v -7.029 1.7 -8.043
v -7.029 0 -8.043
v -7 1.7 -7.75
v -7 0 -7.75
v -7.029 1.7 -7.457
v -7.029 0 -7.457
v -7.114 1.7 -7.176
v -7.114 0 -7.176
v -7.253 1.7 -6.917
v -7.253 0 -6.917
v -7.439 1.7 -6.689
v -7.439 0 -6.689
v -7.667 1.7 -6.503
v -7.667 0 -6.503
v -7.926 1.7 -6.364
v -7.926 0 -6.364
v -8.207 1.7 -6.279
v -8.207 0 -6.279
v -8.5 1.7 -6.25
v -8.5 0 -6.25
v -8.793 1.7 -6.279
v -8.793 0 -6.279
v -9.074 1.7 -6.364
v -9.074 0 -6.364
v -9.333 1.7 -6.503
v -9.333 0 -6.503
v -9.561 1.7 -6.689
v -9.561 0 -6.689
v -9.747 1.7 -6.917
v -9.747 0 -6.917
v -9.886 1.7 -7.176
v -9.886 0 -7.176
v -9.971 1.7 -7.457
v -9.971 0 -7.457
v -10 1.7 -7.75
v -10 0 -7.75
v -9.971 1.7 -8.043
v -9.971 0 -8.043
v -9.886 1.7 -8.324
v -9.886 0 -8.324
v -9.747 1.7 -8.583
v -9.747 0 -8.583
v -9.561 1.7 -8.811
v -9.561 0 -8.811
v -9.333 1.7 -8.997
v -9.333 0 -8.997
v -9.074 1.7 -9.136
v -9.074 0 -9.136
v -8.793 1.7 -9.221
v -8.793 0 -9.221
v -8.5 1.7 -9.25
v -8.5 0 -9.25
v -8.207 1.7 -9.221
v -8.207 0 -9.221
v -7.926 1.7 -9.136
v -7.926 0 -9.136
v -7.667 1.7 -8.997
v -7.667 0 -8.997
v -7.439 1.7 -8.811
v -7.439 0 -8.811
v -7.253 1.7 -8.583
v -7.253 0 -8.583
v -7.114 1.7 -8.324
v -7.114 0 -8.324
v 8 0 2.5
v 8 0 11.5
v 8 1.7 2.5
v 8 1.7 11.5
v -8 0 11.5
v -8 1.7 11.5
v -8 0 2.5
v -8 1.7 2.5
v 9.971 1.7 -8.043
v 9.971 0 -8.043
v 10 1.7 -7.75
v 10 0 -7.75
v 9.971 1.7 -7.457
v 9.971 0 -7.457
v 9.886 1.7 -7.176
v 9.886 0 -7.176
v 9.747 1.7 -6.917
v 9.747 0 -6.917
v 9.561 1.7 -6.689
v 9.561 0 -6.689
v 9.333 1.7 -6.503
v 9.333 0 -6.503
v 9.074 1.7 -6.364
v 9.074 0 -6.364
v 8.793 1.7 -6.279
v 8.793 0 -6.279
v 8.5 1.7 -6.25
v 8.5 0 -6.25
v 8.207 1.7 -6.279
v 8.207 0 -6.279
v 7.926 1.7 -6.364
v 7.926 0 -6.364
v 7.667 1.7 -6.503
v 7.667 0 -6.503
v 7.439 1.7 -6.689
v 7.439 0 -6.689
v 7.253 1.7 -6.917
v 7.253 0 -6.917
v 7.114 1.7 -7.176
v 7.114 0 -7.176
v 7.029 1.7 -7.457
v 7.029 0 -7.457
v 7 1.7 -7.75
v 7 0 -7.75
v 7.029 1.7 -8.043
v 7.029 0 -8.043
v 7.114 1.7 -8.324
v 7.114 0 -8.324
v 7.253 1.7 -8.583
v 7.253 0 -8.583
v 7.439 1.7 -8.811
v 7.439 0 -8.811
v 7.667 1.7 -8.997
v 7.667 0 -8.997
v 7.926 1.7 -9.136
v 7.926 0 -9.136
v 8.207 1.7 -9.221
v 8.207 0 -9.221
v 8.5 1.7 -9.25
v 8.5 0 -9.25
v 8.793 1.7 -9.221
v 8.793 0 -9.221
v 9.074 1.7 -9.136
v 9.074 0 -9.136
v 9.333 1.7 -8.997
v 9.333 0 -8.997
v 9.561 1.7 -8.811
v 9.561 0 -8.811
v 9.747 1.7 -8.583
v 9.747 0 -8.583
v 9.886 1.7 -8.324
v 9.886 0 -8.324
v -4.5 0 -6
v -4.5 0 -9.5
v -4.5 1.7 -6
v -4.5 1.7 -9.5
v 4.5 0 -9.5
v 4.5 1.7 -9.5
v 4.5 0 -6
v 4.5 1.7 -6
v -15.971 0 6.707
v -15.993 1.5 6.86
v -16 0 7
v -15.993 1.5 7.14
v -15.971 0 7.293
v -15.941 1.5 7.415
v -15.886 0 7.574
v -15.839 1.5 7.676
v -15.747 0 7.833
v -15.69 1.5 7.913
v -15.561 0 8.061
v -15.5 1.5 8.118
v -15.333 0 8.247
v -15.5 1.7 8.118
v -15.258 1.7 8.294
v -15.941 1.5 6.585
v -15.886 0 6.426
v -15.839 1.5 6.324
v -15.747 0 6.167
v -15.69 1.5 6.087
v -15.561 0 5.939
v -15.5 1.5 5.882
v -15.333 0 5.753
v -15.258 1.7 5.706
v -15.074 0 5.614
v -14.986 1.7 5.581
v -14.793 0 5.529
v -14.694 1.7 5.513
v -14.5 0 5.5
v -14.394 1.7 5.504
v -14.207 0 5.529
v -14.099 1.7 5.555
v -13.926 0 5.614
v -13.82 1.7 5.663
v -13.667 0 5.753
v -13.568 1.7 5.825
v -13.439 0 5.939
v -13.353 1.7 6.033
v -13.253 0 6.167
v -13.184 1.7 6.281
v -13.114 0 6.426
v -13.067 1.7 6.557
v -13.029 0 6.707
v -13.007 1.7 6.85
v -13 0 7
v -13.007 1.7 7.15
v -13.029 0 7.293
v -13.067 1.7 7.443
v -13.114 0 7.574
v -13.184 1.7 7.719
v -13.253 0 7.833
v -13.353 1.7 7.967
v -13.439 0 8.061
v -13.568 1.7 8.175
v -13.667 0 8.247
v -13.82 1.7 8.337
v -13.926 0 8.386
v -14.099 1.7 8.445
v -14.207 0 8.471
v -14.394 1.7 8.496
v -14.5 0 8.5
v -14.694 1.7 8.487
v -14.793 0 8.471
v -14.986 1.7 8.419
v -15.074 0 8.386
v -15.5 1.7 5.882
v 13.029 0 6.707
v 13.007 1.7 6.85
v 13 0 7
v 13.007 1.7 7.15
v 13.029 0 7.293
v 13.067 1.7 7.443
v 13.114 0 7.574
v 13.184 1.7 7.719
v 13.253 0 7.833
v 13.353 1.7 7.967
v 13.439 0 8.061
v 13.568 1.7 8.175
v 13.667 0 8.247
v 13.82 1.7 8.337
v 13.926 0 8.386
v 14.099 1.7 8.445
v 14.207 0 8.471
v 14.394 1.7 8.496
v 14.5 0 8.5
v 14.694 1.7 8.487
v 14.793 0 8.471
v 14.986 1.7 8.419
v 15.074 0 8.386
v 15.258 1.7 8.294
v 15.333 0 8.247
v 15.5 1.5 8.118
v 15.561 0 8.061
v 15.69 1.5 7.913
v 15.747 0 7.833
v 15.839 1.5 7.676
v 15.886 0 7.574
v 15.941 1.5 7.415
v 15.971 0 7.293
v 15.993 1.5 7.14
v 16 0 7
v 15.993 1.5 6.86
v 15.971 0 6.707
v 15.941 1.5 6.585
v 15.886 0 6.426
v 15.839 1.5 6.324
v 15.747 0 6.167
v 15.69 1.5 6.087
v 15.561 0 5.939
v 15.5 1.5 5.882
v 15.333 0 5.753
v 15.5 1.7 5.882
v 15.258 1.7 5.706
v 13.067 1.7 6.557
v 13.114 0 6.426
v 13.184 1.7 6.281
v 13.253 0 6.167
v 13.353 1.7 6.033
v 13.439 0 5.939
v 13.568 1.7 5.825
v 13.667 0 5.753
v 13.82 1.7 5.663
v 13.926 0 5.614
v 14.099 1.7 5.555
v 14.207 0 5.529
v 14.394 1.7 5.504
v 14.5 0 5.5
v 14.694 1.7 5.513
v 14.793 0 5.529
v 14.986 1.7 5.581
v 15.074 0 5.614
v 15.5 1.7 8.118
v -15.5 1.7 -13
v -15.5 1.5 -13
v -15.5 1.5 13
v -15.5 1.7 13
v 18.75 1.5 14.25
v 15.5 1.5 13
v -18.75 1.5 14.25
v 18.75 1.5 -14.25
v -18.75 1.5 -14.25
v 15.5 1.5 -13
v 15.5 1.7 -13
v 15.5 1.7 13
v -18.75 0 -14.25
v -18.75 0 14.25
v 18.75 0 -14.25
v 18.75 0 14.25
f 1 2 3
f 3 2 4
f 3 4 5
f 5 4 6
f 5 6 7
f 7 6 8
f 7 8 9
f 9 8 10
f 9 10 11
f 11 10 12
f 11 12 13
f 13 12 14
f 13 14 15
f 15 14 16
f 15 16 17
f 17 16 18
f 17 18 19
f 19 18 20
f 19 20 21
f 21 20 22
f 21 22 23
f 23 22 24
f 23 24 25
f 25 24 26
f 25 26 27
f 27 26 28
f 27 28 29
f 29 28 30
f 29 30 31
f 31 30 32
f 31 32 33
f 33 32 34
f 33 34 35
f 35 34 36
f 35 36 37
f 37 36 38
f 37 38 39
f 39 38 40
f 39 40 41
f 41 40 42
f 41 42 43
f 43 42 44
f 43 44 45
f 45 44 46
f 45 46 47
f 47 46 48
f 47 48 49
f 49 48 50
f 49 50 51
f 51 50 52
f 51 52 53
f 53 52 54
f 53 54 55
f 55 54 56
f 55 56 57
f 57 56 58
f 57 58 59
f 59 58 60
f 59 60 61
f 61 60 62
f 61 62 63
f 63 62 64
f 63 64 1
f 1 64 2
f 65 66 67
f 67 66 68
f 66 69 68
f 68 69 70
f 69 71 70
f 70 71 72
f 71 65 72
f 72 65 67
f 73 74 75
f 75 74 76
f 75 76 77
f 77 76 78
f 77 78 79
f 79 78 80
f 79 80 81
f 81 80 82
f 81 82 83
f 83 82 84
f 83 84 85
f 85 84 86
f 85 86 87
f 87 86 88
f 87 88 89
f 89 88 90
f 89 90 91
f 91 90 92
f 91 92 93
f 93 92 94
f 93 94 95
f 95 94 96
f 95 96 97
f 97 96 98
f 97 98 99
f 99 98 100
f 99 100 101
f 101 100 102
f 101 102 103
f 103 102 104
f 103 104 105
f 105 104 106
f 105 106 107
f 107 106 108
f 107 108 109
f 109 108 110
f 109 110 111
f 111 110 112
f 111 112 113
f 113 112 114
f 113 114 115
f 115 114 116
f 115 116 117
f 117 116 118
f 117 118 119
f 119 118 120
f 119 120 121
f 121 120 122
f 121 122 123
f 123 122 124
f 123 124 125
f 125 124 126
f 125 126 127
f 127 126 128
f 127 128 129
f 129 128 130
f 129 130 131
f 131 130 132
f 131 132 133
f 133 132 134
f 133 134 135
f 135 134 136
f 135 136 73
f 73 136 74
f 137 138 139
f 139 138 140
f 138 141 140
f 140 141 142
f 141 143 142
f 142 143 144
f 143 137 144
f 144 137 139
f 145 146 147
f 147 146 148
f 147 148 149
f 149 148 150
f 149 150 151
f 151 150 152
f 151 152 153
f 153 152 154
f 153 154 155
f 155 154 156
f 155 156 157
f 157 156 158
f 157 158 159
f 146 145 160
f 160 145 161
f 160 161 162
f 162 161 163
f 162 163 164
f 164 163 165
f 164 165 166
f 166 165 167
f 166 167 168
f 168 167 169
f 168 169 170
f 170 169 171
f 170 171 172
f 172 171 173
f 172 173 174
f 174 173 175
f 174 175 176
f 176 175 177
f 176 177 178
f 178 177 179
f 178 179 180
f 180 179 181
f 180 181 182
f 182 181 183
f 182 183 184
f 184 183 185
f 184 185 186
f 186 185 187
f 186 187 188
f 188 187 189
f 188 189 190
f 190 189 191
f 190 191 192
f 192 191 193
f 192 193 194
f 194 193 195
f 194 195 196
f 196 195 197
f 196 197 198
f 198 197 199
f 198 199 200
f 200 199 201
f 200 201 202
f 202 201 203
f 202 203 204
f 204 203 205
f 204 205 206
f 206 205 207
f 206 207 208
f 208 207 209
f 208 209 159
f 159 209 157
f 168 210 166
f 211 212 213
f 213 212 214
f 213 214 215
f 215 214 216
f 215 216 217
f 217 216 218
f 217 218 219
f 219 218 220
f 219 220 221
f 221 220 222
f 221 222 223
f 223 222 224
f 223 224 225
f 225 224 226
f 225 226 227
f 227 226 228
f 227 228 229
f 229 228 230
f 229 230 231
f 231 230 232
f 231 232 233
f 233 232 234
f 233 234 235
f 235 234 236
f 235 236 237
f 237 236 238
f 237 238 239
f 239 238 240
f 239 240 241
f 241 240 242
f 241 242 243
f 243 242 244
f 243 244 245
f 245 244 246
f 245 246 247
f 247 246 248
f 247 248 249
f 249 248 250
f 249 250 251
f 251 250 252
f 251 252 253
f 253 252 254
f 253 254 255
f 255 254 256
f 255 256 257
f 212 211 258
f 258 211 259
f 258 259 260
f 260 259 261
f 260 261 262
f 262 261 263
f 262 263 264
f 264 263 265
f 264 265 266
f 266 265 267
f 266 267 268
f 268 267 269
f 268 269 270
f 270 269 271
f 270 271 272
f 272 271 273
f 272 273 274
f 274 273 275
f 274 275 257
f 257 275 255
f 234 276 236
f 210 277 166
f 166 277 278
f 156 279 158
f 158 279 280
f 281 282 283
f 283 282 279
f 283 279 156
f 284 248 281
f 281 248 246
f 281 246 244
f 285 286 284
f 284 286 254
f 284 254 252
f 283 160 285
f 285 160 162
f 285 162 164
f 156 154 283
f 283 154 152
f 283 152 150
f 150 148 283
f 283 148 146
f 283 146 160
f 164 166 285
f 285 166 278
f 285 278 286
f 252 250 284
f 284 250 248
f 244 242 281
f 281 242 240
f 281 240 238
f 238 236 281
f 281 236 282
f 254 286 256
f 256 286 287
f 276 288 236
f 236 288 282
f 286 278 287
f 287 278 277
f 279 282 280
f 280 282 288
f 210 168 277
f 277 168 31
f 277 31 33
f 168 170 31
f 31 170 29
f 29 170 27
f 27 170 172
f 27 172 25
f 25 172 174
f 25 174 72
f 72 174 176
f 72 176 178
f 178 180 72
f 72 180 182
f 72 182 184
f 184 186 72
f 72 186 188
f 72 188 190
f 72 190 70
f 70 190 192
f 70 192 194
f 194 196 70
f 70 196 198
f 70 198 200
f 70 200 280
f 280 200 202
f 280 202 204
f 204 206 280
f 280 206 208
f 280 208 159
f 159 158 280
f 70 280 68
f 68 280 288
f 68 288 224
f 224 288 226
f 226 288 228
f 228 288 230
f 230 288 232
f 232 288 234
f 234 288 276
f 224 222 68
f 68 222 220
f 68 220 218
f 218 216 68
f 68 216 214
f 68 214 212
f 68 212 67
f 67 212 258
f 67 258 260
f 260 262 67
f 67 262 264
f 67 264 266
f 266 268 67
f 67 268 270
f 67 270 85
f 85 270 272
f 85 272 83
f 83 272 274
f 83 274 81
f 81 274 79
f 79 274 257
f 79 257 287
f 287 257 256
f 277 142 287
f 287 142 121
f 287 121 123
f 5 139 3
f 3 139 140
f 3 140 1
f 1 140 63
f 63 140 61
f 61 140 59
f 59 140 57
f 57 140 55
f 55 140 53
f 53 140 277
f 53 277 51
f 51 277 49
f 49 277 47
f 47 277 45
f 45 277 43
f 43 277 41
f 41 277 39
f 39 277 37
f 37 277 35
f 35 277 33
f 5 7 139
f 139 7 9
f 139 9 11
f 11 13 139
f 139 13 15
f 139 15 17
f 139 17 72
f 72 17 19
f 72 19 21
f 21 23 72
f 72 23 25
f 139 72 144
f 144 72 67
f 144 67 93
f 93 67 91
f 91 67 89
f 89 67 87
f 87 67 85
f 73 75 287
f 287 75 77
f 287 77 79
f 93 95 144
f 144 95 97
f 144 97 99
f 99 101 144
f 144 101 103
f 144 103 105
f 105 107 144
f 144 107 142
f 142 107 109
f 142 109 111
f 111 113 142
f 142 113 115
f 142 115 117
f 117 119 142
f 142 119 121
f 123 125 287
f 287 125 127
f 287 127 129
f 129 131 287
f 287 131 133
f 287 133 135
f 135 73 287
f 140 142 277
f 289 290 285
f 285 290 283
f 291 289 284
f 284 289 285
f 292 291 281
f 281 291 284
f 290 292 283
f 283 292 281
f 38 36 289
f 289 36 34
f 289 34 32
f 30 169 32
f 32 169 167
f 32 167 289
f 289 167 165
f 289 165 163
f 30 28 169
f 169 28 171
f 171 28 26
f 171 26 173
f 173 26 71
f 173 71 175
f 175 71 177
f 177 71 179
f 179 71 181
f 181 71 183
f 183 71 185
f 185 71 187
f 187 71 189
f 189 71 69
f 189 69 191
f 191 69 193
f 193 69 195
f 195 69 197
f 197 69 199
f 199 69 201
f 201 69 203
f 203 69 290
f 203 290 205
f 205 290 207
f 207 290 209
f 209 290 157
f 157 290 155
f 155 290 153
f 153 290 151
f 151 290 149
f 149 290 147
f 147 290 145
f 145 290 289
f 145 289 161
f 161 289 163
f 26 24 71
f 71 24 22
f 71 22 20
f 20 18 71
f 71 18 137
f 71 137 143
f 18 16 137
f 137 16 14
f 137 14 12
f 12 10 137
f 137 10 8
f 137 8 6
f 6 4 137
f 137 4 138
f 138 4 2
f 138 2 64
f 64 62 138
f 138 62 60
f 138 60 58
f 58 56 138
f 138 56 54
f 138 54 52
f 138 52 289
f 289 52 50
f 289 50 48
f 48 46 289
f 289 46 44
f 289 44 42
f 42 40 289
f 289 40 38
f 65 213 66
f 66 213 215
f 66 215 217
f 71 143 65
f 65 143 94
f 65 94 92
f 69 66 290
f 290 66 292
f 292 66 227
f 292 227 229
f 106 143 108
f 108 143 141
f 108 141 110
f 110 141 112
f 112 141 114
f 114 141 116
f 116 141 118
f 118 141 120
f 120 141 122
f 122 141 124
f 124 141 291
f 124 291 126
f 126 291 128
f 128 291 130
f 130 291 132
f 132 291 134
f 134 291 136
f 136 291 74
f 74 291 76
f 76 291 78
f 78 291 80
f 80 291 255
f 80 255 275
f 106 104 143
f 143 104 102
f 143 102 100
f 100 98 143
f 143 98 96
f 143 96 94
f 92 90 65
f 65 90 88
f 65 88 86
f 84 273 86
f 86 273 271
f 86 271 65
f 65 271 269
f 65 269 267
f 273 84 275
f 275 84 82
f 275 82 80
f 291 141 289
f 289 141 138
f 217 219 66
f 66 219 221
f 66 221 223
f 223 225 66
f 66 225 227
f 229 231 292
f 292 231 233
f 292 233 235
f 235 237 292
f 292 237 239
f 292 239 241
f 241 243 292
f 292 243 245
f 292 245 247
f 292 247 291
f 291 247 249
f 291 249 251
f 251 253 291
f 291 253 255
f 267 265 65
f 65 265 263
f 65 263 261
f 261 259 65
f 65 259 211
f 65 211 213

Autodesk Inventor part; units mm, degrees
ref_plane "YZ Plane" through (0, 0, 0) normal (1, 0, 0) x (0, 1, 0)
ref_plane "XZ Plane" through (0, 0, 0) normal (0, 1, 0) x (-1, 0, 0)
ref_plane "XY Plane" through (0, 0, 0) normal (0, 0, 1) x (1, 0, 0)
sketch "Sketch1" plane through (0, 0, 0) normal (0, 1, 0) x (-1, 0, 0)
  line L0 (15.5, 13) -> (-15.5, 13)
  line L1 (-15.5, 13) -> (-15.5, -13)
  line L2 (-15.5, -13) -> (15.5, -13)
  line L3 (15.5, -13) -> (15.5, 13)
  line L4 (15.5, 13) -> (-15.5, -13) construction
  line L5 (-15.5, 13) -> (15.5, -13) construction
  line L6 (18.75, -14.25) -> (-18.75, -14.25)
  line L7 (-18.75, -14.25) -> (-18.75, 14.25)
  line L8 (-18.75, 14.25) -> (18.75, 14.25)
  line L9 (18.75, 14.25) -> (18.75, -14.25)
  line L10 (18.75, -14.25) -> (-18.75, 14.25) construction
  line L11 (-18.75, -14.25) -> (18.75, 14.25) construction
  point P0 (0, 0)
  dimension "d0" = 31
  dimension "d1" = 26
  dimension "d16" = 37.5
  dimension "d17" = 28.5
extrude "Extrusion2" add sketch "Sketch1" along normal blind 1.5 contours L3 L2 L1 L0 | L6 L7 L8 L9
sketch "Sketch2" plane through (0, 1.5, 0) normal (0, 1, 0) x (1, 0, 0)
  line L0 (15.5, 13) -> (-15.5, 13) projected
  line L1 (-15.5, -13) -> (15.5, -13) projected
  line L2 (-18.75, -14.25) -> (18.75, -14.25) projected
  line L3 (18.75, -14.25) -> (18.75, 14.25) projected
  line L4 (18.75, 14.25) -> (-18.75, 14.25) projected
  line L5 (-18.75, 14.25) -> (-18.75, -14.25) projected
  line L6 (15.5, -13) -> (15.5, 13) projected
  line L7 (-15.5, 13) -> (-15.5, -13) projected
  point P0 (0, 0)
extrude "Extrusion4" add sketch "Sketch2" along normal blind 0.2 contours L6 L1 L7 L0
sketch "Sketch3" plane through (0, 1.7, 0) normal (0, 1, 0) x (1, 0, 0)
  circle A0 centre (-14.5, -7) radius 1.5
  circle A1 centre (14.5, -7) radius 1.5
  circle A2 centre (-8.5, 7.75) radius 1.5
  circle A3 centre (8.5, 7.75) radius 1.5
  line L0 (0, -13.0822) -> (0, 13.0822)
  line L1 (-15.5, -13) -> (15.5, -13) projected
  line L2 (15.5, 13) -> (-15.5, 13) projected
  line L3 (8, -11.5) -> (-8, -11.5)
  line L4 (-8, -11.5) -> (-8, -2.5)
  line L5 (-8, -2.5) -> (8, -2.5)
  line L6 (8, -2.5) -> (8, -11.5)
  line L7 (8, -11.5) -> (-8, -2.5) construction
  line L8 (-8, -11.5) -> (8, -2.5) construction
  line L9 (4.5, 6) -> (-4.5, 6)
  line L10 (-4.5, 6) -> (-4.5, 9.5)
  line L11 (-4.5, 9.5) -> (4.5, 9.5)
  line L12 (4.5, 9.5) -> (4.5, 6)
  line L13 (4.5, 6) -> (-4.5, 9.5) construction
  line L14 (-4.5, 6) -> (4.5, 9.5) construction
  point P0 (0, 0)
  point P1 (0, -7)
  point P2 (0, 7.75)
  dimension "d25" = 3
  dimension "d26" = 3
  dimension "d27" = 3
  dimension "d28" = 3
  dimension "d29" = 8.5
  dimension "d30" = 8.5
  dimension "d31" = 14.5
  dimension "d32" = 14.5
  dimension "d33" = 6
  dimension "d34" = 6
  dimension "d35" = 5.25
  dimension "d36" = 5.25
  dimension "d37" = 16
  dimension "d38" = 9
  dimension "d39" = 9
  dimension "d40" = 3.5
extrude "Extrusion5" cut sketch "Sketch3" against normal up to surface (1.7 mm away)
sketch "Sketch4" plane through (0, 0, 0) normal (0, -1, 0) x (1, 0, 0)
  line L0 (-15.5, 13) -> (15.5, 13) projected
  line L1 (15.5, 13) -> (15.5, -13) projected
  line L2 (-15.5, -13) -> (-15.5, 13) projected
  line L3 (15.5, -13) -> (-15.5, -13) projected
  point P0 (0, 0)
equation "\"d30\" = d29"
equation "\"d32\" = d31"
equation "\"d34\" = d33"
equation "\"d36\" = d35"
properties part number "USB inner clamp plate_3DPrint"
